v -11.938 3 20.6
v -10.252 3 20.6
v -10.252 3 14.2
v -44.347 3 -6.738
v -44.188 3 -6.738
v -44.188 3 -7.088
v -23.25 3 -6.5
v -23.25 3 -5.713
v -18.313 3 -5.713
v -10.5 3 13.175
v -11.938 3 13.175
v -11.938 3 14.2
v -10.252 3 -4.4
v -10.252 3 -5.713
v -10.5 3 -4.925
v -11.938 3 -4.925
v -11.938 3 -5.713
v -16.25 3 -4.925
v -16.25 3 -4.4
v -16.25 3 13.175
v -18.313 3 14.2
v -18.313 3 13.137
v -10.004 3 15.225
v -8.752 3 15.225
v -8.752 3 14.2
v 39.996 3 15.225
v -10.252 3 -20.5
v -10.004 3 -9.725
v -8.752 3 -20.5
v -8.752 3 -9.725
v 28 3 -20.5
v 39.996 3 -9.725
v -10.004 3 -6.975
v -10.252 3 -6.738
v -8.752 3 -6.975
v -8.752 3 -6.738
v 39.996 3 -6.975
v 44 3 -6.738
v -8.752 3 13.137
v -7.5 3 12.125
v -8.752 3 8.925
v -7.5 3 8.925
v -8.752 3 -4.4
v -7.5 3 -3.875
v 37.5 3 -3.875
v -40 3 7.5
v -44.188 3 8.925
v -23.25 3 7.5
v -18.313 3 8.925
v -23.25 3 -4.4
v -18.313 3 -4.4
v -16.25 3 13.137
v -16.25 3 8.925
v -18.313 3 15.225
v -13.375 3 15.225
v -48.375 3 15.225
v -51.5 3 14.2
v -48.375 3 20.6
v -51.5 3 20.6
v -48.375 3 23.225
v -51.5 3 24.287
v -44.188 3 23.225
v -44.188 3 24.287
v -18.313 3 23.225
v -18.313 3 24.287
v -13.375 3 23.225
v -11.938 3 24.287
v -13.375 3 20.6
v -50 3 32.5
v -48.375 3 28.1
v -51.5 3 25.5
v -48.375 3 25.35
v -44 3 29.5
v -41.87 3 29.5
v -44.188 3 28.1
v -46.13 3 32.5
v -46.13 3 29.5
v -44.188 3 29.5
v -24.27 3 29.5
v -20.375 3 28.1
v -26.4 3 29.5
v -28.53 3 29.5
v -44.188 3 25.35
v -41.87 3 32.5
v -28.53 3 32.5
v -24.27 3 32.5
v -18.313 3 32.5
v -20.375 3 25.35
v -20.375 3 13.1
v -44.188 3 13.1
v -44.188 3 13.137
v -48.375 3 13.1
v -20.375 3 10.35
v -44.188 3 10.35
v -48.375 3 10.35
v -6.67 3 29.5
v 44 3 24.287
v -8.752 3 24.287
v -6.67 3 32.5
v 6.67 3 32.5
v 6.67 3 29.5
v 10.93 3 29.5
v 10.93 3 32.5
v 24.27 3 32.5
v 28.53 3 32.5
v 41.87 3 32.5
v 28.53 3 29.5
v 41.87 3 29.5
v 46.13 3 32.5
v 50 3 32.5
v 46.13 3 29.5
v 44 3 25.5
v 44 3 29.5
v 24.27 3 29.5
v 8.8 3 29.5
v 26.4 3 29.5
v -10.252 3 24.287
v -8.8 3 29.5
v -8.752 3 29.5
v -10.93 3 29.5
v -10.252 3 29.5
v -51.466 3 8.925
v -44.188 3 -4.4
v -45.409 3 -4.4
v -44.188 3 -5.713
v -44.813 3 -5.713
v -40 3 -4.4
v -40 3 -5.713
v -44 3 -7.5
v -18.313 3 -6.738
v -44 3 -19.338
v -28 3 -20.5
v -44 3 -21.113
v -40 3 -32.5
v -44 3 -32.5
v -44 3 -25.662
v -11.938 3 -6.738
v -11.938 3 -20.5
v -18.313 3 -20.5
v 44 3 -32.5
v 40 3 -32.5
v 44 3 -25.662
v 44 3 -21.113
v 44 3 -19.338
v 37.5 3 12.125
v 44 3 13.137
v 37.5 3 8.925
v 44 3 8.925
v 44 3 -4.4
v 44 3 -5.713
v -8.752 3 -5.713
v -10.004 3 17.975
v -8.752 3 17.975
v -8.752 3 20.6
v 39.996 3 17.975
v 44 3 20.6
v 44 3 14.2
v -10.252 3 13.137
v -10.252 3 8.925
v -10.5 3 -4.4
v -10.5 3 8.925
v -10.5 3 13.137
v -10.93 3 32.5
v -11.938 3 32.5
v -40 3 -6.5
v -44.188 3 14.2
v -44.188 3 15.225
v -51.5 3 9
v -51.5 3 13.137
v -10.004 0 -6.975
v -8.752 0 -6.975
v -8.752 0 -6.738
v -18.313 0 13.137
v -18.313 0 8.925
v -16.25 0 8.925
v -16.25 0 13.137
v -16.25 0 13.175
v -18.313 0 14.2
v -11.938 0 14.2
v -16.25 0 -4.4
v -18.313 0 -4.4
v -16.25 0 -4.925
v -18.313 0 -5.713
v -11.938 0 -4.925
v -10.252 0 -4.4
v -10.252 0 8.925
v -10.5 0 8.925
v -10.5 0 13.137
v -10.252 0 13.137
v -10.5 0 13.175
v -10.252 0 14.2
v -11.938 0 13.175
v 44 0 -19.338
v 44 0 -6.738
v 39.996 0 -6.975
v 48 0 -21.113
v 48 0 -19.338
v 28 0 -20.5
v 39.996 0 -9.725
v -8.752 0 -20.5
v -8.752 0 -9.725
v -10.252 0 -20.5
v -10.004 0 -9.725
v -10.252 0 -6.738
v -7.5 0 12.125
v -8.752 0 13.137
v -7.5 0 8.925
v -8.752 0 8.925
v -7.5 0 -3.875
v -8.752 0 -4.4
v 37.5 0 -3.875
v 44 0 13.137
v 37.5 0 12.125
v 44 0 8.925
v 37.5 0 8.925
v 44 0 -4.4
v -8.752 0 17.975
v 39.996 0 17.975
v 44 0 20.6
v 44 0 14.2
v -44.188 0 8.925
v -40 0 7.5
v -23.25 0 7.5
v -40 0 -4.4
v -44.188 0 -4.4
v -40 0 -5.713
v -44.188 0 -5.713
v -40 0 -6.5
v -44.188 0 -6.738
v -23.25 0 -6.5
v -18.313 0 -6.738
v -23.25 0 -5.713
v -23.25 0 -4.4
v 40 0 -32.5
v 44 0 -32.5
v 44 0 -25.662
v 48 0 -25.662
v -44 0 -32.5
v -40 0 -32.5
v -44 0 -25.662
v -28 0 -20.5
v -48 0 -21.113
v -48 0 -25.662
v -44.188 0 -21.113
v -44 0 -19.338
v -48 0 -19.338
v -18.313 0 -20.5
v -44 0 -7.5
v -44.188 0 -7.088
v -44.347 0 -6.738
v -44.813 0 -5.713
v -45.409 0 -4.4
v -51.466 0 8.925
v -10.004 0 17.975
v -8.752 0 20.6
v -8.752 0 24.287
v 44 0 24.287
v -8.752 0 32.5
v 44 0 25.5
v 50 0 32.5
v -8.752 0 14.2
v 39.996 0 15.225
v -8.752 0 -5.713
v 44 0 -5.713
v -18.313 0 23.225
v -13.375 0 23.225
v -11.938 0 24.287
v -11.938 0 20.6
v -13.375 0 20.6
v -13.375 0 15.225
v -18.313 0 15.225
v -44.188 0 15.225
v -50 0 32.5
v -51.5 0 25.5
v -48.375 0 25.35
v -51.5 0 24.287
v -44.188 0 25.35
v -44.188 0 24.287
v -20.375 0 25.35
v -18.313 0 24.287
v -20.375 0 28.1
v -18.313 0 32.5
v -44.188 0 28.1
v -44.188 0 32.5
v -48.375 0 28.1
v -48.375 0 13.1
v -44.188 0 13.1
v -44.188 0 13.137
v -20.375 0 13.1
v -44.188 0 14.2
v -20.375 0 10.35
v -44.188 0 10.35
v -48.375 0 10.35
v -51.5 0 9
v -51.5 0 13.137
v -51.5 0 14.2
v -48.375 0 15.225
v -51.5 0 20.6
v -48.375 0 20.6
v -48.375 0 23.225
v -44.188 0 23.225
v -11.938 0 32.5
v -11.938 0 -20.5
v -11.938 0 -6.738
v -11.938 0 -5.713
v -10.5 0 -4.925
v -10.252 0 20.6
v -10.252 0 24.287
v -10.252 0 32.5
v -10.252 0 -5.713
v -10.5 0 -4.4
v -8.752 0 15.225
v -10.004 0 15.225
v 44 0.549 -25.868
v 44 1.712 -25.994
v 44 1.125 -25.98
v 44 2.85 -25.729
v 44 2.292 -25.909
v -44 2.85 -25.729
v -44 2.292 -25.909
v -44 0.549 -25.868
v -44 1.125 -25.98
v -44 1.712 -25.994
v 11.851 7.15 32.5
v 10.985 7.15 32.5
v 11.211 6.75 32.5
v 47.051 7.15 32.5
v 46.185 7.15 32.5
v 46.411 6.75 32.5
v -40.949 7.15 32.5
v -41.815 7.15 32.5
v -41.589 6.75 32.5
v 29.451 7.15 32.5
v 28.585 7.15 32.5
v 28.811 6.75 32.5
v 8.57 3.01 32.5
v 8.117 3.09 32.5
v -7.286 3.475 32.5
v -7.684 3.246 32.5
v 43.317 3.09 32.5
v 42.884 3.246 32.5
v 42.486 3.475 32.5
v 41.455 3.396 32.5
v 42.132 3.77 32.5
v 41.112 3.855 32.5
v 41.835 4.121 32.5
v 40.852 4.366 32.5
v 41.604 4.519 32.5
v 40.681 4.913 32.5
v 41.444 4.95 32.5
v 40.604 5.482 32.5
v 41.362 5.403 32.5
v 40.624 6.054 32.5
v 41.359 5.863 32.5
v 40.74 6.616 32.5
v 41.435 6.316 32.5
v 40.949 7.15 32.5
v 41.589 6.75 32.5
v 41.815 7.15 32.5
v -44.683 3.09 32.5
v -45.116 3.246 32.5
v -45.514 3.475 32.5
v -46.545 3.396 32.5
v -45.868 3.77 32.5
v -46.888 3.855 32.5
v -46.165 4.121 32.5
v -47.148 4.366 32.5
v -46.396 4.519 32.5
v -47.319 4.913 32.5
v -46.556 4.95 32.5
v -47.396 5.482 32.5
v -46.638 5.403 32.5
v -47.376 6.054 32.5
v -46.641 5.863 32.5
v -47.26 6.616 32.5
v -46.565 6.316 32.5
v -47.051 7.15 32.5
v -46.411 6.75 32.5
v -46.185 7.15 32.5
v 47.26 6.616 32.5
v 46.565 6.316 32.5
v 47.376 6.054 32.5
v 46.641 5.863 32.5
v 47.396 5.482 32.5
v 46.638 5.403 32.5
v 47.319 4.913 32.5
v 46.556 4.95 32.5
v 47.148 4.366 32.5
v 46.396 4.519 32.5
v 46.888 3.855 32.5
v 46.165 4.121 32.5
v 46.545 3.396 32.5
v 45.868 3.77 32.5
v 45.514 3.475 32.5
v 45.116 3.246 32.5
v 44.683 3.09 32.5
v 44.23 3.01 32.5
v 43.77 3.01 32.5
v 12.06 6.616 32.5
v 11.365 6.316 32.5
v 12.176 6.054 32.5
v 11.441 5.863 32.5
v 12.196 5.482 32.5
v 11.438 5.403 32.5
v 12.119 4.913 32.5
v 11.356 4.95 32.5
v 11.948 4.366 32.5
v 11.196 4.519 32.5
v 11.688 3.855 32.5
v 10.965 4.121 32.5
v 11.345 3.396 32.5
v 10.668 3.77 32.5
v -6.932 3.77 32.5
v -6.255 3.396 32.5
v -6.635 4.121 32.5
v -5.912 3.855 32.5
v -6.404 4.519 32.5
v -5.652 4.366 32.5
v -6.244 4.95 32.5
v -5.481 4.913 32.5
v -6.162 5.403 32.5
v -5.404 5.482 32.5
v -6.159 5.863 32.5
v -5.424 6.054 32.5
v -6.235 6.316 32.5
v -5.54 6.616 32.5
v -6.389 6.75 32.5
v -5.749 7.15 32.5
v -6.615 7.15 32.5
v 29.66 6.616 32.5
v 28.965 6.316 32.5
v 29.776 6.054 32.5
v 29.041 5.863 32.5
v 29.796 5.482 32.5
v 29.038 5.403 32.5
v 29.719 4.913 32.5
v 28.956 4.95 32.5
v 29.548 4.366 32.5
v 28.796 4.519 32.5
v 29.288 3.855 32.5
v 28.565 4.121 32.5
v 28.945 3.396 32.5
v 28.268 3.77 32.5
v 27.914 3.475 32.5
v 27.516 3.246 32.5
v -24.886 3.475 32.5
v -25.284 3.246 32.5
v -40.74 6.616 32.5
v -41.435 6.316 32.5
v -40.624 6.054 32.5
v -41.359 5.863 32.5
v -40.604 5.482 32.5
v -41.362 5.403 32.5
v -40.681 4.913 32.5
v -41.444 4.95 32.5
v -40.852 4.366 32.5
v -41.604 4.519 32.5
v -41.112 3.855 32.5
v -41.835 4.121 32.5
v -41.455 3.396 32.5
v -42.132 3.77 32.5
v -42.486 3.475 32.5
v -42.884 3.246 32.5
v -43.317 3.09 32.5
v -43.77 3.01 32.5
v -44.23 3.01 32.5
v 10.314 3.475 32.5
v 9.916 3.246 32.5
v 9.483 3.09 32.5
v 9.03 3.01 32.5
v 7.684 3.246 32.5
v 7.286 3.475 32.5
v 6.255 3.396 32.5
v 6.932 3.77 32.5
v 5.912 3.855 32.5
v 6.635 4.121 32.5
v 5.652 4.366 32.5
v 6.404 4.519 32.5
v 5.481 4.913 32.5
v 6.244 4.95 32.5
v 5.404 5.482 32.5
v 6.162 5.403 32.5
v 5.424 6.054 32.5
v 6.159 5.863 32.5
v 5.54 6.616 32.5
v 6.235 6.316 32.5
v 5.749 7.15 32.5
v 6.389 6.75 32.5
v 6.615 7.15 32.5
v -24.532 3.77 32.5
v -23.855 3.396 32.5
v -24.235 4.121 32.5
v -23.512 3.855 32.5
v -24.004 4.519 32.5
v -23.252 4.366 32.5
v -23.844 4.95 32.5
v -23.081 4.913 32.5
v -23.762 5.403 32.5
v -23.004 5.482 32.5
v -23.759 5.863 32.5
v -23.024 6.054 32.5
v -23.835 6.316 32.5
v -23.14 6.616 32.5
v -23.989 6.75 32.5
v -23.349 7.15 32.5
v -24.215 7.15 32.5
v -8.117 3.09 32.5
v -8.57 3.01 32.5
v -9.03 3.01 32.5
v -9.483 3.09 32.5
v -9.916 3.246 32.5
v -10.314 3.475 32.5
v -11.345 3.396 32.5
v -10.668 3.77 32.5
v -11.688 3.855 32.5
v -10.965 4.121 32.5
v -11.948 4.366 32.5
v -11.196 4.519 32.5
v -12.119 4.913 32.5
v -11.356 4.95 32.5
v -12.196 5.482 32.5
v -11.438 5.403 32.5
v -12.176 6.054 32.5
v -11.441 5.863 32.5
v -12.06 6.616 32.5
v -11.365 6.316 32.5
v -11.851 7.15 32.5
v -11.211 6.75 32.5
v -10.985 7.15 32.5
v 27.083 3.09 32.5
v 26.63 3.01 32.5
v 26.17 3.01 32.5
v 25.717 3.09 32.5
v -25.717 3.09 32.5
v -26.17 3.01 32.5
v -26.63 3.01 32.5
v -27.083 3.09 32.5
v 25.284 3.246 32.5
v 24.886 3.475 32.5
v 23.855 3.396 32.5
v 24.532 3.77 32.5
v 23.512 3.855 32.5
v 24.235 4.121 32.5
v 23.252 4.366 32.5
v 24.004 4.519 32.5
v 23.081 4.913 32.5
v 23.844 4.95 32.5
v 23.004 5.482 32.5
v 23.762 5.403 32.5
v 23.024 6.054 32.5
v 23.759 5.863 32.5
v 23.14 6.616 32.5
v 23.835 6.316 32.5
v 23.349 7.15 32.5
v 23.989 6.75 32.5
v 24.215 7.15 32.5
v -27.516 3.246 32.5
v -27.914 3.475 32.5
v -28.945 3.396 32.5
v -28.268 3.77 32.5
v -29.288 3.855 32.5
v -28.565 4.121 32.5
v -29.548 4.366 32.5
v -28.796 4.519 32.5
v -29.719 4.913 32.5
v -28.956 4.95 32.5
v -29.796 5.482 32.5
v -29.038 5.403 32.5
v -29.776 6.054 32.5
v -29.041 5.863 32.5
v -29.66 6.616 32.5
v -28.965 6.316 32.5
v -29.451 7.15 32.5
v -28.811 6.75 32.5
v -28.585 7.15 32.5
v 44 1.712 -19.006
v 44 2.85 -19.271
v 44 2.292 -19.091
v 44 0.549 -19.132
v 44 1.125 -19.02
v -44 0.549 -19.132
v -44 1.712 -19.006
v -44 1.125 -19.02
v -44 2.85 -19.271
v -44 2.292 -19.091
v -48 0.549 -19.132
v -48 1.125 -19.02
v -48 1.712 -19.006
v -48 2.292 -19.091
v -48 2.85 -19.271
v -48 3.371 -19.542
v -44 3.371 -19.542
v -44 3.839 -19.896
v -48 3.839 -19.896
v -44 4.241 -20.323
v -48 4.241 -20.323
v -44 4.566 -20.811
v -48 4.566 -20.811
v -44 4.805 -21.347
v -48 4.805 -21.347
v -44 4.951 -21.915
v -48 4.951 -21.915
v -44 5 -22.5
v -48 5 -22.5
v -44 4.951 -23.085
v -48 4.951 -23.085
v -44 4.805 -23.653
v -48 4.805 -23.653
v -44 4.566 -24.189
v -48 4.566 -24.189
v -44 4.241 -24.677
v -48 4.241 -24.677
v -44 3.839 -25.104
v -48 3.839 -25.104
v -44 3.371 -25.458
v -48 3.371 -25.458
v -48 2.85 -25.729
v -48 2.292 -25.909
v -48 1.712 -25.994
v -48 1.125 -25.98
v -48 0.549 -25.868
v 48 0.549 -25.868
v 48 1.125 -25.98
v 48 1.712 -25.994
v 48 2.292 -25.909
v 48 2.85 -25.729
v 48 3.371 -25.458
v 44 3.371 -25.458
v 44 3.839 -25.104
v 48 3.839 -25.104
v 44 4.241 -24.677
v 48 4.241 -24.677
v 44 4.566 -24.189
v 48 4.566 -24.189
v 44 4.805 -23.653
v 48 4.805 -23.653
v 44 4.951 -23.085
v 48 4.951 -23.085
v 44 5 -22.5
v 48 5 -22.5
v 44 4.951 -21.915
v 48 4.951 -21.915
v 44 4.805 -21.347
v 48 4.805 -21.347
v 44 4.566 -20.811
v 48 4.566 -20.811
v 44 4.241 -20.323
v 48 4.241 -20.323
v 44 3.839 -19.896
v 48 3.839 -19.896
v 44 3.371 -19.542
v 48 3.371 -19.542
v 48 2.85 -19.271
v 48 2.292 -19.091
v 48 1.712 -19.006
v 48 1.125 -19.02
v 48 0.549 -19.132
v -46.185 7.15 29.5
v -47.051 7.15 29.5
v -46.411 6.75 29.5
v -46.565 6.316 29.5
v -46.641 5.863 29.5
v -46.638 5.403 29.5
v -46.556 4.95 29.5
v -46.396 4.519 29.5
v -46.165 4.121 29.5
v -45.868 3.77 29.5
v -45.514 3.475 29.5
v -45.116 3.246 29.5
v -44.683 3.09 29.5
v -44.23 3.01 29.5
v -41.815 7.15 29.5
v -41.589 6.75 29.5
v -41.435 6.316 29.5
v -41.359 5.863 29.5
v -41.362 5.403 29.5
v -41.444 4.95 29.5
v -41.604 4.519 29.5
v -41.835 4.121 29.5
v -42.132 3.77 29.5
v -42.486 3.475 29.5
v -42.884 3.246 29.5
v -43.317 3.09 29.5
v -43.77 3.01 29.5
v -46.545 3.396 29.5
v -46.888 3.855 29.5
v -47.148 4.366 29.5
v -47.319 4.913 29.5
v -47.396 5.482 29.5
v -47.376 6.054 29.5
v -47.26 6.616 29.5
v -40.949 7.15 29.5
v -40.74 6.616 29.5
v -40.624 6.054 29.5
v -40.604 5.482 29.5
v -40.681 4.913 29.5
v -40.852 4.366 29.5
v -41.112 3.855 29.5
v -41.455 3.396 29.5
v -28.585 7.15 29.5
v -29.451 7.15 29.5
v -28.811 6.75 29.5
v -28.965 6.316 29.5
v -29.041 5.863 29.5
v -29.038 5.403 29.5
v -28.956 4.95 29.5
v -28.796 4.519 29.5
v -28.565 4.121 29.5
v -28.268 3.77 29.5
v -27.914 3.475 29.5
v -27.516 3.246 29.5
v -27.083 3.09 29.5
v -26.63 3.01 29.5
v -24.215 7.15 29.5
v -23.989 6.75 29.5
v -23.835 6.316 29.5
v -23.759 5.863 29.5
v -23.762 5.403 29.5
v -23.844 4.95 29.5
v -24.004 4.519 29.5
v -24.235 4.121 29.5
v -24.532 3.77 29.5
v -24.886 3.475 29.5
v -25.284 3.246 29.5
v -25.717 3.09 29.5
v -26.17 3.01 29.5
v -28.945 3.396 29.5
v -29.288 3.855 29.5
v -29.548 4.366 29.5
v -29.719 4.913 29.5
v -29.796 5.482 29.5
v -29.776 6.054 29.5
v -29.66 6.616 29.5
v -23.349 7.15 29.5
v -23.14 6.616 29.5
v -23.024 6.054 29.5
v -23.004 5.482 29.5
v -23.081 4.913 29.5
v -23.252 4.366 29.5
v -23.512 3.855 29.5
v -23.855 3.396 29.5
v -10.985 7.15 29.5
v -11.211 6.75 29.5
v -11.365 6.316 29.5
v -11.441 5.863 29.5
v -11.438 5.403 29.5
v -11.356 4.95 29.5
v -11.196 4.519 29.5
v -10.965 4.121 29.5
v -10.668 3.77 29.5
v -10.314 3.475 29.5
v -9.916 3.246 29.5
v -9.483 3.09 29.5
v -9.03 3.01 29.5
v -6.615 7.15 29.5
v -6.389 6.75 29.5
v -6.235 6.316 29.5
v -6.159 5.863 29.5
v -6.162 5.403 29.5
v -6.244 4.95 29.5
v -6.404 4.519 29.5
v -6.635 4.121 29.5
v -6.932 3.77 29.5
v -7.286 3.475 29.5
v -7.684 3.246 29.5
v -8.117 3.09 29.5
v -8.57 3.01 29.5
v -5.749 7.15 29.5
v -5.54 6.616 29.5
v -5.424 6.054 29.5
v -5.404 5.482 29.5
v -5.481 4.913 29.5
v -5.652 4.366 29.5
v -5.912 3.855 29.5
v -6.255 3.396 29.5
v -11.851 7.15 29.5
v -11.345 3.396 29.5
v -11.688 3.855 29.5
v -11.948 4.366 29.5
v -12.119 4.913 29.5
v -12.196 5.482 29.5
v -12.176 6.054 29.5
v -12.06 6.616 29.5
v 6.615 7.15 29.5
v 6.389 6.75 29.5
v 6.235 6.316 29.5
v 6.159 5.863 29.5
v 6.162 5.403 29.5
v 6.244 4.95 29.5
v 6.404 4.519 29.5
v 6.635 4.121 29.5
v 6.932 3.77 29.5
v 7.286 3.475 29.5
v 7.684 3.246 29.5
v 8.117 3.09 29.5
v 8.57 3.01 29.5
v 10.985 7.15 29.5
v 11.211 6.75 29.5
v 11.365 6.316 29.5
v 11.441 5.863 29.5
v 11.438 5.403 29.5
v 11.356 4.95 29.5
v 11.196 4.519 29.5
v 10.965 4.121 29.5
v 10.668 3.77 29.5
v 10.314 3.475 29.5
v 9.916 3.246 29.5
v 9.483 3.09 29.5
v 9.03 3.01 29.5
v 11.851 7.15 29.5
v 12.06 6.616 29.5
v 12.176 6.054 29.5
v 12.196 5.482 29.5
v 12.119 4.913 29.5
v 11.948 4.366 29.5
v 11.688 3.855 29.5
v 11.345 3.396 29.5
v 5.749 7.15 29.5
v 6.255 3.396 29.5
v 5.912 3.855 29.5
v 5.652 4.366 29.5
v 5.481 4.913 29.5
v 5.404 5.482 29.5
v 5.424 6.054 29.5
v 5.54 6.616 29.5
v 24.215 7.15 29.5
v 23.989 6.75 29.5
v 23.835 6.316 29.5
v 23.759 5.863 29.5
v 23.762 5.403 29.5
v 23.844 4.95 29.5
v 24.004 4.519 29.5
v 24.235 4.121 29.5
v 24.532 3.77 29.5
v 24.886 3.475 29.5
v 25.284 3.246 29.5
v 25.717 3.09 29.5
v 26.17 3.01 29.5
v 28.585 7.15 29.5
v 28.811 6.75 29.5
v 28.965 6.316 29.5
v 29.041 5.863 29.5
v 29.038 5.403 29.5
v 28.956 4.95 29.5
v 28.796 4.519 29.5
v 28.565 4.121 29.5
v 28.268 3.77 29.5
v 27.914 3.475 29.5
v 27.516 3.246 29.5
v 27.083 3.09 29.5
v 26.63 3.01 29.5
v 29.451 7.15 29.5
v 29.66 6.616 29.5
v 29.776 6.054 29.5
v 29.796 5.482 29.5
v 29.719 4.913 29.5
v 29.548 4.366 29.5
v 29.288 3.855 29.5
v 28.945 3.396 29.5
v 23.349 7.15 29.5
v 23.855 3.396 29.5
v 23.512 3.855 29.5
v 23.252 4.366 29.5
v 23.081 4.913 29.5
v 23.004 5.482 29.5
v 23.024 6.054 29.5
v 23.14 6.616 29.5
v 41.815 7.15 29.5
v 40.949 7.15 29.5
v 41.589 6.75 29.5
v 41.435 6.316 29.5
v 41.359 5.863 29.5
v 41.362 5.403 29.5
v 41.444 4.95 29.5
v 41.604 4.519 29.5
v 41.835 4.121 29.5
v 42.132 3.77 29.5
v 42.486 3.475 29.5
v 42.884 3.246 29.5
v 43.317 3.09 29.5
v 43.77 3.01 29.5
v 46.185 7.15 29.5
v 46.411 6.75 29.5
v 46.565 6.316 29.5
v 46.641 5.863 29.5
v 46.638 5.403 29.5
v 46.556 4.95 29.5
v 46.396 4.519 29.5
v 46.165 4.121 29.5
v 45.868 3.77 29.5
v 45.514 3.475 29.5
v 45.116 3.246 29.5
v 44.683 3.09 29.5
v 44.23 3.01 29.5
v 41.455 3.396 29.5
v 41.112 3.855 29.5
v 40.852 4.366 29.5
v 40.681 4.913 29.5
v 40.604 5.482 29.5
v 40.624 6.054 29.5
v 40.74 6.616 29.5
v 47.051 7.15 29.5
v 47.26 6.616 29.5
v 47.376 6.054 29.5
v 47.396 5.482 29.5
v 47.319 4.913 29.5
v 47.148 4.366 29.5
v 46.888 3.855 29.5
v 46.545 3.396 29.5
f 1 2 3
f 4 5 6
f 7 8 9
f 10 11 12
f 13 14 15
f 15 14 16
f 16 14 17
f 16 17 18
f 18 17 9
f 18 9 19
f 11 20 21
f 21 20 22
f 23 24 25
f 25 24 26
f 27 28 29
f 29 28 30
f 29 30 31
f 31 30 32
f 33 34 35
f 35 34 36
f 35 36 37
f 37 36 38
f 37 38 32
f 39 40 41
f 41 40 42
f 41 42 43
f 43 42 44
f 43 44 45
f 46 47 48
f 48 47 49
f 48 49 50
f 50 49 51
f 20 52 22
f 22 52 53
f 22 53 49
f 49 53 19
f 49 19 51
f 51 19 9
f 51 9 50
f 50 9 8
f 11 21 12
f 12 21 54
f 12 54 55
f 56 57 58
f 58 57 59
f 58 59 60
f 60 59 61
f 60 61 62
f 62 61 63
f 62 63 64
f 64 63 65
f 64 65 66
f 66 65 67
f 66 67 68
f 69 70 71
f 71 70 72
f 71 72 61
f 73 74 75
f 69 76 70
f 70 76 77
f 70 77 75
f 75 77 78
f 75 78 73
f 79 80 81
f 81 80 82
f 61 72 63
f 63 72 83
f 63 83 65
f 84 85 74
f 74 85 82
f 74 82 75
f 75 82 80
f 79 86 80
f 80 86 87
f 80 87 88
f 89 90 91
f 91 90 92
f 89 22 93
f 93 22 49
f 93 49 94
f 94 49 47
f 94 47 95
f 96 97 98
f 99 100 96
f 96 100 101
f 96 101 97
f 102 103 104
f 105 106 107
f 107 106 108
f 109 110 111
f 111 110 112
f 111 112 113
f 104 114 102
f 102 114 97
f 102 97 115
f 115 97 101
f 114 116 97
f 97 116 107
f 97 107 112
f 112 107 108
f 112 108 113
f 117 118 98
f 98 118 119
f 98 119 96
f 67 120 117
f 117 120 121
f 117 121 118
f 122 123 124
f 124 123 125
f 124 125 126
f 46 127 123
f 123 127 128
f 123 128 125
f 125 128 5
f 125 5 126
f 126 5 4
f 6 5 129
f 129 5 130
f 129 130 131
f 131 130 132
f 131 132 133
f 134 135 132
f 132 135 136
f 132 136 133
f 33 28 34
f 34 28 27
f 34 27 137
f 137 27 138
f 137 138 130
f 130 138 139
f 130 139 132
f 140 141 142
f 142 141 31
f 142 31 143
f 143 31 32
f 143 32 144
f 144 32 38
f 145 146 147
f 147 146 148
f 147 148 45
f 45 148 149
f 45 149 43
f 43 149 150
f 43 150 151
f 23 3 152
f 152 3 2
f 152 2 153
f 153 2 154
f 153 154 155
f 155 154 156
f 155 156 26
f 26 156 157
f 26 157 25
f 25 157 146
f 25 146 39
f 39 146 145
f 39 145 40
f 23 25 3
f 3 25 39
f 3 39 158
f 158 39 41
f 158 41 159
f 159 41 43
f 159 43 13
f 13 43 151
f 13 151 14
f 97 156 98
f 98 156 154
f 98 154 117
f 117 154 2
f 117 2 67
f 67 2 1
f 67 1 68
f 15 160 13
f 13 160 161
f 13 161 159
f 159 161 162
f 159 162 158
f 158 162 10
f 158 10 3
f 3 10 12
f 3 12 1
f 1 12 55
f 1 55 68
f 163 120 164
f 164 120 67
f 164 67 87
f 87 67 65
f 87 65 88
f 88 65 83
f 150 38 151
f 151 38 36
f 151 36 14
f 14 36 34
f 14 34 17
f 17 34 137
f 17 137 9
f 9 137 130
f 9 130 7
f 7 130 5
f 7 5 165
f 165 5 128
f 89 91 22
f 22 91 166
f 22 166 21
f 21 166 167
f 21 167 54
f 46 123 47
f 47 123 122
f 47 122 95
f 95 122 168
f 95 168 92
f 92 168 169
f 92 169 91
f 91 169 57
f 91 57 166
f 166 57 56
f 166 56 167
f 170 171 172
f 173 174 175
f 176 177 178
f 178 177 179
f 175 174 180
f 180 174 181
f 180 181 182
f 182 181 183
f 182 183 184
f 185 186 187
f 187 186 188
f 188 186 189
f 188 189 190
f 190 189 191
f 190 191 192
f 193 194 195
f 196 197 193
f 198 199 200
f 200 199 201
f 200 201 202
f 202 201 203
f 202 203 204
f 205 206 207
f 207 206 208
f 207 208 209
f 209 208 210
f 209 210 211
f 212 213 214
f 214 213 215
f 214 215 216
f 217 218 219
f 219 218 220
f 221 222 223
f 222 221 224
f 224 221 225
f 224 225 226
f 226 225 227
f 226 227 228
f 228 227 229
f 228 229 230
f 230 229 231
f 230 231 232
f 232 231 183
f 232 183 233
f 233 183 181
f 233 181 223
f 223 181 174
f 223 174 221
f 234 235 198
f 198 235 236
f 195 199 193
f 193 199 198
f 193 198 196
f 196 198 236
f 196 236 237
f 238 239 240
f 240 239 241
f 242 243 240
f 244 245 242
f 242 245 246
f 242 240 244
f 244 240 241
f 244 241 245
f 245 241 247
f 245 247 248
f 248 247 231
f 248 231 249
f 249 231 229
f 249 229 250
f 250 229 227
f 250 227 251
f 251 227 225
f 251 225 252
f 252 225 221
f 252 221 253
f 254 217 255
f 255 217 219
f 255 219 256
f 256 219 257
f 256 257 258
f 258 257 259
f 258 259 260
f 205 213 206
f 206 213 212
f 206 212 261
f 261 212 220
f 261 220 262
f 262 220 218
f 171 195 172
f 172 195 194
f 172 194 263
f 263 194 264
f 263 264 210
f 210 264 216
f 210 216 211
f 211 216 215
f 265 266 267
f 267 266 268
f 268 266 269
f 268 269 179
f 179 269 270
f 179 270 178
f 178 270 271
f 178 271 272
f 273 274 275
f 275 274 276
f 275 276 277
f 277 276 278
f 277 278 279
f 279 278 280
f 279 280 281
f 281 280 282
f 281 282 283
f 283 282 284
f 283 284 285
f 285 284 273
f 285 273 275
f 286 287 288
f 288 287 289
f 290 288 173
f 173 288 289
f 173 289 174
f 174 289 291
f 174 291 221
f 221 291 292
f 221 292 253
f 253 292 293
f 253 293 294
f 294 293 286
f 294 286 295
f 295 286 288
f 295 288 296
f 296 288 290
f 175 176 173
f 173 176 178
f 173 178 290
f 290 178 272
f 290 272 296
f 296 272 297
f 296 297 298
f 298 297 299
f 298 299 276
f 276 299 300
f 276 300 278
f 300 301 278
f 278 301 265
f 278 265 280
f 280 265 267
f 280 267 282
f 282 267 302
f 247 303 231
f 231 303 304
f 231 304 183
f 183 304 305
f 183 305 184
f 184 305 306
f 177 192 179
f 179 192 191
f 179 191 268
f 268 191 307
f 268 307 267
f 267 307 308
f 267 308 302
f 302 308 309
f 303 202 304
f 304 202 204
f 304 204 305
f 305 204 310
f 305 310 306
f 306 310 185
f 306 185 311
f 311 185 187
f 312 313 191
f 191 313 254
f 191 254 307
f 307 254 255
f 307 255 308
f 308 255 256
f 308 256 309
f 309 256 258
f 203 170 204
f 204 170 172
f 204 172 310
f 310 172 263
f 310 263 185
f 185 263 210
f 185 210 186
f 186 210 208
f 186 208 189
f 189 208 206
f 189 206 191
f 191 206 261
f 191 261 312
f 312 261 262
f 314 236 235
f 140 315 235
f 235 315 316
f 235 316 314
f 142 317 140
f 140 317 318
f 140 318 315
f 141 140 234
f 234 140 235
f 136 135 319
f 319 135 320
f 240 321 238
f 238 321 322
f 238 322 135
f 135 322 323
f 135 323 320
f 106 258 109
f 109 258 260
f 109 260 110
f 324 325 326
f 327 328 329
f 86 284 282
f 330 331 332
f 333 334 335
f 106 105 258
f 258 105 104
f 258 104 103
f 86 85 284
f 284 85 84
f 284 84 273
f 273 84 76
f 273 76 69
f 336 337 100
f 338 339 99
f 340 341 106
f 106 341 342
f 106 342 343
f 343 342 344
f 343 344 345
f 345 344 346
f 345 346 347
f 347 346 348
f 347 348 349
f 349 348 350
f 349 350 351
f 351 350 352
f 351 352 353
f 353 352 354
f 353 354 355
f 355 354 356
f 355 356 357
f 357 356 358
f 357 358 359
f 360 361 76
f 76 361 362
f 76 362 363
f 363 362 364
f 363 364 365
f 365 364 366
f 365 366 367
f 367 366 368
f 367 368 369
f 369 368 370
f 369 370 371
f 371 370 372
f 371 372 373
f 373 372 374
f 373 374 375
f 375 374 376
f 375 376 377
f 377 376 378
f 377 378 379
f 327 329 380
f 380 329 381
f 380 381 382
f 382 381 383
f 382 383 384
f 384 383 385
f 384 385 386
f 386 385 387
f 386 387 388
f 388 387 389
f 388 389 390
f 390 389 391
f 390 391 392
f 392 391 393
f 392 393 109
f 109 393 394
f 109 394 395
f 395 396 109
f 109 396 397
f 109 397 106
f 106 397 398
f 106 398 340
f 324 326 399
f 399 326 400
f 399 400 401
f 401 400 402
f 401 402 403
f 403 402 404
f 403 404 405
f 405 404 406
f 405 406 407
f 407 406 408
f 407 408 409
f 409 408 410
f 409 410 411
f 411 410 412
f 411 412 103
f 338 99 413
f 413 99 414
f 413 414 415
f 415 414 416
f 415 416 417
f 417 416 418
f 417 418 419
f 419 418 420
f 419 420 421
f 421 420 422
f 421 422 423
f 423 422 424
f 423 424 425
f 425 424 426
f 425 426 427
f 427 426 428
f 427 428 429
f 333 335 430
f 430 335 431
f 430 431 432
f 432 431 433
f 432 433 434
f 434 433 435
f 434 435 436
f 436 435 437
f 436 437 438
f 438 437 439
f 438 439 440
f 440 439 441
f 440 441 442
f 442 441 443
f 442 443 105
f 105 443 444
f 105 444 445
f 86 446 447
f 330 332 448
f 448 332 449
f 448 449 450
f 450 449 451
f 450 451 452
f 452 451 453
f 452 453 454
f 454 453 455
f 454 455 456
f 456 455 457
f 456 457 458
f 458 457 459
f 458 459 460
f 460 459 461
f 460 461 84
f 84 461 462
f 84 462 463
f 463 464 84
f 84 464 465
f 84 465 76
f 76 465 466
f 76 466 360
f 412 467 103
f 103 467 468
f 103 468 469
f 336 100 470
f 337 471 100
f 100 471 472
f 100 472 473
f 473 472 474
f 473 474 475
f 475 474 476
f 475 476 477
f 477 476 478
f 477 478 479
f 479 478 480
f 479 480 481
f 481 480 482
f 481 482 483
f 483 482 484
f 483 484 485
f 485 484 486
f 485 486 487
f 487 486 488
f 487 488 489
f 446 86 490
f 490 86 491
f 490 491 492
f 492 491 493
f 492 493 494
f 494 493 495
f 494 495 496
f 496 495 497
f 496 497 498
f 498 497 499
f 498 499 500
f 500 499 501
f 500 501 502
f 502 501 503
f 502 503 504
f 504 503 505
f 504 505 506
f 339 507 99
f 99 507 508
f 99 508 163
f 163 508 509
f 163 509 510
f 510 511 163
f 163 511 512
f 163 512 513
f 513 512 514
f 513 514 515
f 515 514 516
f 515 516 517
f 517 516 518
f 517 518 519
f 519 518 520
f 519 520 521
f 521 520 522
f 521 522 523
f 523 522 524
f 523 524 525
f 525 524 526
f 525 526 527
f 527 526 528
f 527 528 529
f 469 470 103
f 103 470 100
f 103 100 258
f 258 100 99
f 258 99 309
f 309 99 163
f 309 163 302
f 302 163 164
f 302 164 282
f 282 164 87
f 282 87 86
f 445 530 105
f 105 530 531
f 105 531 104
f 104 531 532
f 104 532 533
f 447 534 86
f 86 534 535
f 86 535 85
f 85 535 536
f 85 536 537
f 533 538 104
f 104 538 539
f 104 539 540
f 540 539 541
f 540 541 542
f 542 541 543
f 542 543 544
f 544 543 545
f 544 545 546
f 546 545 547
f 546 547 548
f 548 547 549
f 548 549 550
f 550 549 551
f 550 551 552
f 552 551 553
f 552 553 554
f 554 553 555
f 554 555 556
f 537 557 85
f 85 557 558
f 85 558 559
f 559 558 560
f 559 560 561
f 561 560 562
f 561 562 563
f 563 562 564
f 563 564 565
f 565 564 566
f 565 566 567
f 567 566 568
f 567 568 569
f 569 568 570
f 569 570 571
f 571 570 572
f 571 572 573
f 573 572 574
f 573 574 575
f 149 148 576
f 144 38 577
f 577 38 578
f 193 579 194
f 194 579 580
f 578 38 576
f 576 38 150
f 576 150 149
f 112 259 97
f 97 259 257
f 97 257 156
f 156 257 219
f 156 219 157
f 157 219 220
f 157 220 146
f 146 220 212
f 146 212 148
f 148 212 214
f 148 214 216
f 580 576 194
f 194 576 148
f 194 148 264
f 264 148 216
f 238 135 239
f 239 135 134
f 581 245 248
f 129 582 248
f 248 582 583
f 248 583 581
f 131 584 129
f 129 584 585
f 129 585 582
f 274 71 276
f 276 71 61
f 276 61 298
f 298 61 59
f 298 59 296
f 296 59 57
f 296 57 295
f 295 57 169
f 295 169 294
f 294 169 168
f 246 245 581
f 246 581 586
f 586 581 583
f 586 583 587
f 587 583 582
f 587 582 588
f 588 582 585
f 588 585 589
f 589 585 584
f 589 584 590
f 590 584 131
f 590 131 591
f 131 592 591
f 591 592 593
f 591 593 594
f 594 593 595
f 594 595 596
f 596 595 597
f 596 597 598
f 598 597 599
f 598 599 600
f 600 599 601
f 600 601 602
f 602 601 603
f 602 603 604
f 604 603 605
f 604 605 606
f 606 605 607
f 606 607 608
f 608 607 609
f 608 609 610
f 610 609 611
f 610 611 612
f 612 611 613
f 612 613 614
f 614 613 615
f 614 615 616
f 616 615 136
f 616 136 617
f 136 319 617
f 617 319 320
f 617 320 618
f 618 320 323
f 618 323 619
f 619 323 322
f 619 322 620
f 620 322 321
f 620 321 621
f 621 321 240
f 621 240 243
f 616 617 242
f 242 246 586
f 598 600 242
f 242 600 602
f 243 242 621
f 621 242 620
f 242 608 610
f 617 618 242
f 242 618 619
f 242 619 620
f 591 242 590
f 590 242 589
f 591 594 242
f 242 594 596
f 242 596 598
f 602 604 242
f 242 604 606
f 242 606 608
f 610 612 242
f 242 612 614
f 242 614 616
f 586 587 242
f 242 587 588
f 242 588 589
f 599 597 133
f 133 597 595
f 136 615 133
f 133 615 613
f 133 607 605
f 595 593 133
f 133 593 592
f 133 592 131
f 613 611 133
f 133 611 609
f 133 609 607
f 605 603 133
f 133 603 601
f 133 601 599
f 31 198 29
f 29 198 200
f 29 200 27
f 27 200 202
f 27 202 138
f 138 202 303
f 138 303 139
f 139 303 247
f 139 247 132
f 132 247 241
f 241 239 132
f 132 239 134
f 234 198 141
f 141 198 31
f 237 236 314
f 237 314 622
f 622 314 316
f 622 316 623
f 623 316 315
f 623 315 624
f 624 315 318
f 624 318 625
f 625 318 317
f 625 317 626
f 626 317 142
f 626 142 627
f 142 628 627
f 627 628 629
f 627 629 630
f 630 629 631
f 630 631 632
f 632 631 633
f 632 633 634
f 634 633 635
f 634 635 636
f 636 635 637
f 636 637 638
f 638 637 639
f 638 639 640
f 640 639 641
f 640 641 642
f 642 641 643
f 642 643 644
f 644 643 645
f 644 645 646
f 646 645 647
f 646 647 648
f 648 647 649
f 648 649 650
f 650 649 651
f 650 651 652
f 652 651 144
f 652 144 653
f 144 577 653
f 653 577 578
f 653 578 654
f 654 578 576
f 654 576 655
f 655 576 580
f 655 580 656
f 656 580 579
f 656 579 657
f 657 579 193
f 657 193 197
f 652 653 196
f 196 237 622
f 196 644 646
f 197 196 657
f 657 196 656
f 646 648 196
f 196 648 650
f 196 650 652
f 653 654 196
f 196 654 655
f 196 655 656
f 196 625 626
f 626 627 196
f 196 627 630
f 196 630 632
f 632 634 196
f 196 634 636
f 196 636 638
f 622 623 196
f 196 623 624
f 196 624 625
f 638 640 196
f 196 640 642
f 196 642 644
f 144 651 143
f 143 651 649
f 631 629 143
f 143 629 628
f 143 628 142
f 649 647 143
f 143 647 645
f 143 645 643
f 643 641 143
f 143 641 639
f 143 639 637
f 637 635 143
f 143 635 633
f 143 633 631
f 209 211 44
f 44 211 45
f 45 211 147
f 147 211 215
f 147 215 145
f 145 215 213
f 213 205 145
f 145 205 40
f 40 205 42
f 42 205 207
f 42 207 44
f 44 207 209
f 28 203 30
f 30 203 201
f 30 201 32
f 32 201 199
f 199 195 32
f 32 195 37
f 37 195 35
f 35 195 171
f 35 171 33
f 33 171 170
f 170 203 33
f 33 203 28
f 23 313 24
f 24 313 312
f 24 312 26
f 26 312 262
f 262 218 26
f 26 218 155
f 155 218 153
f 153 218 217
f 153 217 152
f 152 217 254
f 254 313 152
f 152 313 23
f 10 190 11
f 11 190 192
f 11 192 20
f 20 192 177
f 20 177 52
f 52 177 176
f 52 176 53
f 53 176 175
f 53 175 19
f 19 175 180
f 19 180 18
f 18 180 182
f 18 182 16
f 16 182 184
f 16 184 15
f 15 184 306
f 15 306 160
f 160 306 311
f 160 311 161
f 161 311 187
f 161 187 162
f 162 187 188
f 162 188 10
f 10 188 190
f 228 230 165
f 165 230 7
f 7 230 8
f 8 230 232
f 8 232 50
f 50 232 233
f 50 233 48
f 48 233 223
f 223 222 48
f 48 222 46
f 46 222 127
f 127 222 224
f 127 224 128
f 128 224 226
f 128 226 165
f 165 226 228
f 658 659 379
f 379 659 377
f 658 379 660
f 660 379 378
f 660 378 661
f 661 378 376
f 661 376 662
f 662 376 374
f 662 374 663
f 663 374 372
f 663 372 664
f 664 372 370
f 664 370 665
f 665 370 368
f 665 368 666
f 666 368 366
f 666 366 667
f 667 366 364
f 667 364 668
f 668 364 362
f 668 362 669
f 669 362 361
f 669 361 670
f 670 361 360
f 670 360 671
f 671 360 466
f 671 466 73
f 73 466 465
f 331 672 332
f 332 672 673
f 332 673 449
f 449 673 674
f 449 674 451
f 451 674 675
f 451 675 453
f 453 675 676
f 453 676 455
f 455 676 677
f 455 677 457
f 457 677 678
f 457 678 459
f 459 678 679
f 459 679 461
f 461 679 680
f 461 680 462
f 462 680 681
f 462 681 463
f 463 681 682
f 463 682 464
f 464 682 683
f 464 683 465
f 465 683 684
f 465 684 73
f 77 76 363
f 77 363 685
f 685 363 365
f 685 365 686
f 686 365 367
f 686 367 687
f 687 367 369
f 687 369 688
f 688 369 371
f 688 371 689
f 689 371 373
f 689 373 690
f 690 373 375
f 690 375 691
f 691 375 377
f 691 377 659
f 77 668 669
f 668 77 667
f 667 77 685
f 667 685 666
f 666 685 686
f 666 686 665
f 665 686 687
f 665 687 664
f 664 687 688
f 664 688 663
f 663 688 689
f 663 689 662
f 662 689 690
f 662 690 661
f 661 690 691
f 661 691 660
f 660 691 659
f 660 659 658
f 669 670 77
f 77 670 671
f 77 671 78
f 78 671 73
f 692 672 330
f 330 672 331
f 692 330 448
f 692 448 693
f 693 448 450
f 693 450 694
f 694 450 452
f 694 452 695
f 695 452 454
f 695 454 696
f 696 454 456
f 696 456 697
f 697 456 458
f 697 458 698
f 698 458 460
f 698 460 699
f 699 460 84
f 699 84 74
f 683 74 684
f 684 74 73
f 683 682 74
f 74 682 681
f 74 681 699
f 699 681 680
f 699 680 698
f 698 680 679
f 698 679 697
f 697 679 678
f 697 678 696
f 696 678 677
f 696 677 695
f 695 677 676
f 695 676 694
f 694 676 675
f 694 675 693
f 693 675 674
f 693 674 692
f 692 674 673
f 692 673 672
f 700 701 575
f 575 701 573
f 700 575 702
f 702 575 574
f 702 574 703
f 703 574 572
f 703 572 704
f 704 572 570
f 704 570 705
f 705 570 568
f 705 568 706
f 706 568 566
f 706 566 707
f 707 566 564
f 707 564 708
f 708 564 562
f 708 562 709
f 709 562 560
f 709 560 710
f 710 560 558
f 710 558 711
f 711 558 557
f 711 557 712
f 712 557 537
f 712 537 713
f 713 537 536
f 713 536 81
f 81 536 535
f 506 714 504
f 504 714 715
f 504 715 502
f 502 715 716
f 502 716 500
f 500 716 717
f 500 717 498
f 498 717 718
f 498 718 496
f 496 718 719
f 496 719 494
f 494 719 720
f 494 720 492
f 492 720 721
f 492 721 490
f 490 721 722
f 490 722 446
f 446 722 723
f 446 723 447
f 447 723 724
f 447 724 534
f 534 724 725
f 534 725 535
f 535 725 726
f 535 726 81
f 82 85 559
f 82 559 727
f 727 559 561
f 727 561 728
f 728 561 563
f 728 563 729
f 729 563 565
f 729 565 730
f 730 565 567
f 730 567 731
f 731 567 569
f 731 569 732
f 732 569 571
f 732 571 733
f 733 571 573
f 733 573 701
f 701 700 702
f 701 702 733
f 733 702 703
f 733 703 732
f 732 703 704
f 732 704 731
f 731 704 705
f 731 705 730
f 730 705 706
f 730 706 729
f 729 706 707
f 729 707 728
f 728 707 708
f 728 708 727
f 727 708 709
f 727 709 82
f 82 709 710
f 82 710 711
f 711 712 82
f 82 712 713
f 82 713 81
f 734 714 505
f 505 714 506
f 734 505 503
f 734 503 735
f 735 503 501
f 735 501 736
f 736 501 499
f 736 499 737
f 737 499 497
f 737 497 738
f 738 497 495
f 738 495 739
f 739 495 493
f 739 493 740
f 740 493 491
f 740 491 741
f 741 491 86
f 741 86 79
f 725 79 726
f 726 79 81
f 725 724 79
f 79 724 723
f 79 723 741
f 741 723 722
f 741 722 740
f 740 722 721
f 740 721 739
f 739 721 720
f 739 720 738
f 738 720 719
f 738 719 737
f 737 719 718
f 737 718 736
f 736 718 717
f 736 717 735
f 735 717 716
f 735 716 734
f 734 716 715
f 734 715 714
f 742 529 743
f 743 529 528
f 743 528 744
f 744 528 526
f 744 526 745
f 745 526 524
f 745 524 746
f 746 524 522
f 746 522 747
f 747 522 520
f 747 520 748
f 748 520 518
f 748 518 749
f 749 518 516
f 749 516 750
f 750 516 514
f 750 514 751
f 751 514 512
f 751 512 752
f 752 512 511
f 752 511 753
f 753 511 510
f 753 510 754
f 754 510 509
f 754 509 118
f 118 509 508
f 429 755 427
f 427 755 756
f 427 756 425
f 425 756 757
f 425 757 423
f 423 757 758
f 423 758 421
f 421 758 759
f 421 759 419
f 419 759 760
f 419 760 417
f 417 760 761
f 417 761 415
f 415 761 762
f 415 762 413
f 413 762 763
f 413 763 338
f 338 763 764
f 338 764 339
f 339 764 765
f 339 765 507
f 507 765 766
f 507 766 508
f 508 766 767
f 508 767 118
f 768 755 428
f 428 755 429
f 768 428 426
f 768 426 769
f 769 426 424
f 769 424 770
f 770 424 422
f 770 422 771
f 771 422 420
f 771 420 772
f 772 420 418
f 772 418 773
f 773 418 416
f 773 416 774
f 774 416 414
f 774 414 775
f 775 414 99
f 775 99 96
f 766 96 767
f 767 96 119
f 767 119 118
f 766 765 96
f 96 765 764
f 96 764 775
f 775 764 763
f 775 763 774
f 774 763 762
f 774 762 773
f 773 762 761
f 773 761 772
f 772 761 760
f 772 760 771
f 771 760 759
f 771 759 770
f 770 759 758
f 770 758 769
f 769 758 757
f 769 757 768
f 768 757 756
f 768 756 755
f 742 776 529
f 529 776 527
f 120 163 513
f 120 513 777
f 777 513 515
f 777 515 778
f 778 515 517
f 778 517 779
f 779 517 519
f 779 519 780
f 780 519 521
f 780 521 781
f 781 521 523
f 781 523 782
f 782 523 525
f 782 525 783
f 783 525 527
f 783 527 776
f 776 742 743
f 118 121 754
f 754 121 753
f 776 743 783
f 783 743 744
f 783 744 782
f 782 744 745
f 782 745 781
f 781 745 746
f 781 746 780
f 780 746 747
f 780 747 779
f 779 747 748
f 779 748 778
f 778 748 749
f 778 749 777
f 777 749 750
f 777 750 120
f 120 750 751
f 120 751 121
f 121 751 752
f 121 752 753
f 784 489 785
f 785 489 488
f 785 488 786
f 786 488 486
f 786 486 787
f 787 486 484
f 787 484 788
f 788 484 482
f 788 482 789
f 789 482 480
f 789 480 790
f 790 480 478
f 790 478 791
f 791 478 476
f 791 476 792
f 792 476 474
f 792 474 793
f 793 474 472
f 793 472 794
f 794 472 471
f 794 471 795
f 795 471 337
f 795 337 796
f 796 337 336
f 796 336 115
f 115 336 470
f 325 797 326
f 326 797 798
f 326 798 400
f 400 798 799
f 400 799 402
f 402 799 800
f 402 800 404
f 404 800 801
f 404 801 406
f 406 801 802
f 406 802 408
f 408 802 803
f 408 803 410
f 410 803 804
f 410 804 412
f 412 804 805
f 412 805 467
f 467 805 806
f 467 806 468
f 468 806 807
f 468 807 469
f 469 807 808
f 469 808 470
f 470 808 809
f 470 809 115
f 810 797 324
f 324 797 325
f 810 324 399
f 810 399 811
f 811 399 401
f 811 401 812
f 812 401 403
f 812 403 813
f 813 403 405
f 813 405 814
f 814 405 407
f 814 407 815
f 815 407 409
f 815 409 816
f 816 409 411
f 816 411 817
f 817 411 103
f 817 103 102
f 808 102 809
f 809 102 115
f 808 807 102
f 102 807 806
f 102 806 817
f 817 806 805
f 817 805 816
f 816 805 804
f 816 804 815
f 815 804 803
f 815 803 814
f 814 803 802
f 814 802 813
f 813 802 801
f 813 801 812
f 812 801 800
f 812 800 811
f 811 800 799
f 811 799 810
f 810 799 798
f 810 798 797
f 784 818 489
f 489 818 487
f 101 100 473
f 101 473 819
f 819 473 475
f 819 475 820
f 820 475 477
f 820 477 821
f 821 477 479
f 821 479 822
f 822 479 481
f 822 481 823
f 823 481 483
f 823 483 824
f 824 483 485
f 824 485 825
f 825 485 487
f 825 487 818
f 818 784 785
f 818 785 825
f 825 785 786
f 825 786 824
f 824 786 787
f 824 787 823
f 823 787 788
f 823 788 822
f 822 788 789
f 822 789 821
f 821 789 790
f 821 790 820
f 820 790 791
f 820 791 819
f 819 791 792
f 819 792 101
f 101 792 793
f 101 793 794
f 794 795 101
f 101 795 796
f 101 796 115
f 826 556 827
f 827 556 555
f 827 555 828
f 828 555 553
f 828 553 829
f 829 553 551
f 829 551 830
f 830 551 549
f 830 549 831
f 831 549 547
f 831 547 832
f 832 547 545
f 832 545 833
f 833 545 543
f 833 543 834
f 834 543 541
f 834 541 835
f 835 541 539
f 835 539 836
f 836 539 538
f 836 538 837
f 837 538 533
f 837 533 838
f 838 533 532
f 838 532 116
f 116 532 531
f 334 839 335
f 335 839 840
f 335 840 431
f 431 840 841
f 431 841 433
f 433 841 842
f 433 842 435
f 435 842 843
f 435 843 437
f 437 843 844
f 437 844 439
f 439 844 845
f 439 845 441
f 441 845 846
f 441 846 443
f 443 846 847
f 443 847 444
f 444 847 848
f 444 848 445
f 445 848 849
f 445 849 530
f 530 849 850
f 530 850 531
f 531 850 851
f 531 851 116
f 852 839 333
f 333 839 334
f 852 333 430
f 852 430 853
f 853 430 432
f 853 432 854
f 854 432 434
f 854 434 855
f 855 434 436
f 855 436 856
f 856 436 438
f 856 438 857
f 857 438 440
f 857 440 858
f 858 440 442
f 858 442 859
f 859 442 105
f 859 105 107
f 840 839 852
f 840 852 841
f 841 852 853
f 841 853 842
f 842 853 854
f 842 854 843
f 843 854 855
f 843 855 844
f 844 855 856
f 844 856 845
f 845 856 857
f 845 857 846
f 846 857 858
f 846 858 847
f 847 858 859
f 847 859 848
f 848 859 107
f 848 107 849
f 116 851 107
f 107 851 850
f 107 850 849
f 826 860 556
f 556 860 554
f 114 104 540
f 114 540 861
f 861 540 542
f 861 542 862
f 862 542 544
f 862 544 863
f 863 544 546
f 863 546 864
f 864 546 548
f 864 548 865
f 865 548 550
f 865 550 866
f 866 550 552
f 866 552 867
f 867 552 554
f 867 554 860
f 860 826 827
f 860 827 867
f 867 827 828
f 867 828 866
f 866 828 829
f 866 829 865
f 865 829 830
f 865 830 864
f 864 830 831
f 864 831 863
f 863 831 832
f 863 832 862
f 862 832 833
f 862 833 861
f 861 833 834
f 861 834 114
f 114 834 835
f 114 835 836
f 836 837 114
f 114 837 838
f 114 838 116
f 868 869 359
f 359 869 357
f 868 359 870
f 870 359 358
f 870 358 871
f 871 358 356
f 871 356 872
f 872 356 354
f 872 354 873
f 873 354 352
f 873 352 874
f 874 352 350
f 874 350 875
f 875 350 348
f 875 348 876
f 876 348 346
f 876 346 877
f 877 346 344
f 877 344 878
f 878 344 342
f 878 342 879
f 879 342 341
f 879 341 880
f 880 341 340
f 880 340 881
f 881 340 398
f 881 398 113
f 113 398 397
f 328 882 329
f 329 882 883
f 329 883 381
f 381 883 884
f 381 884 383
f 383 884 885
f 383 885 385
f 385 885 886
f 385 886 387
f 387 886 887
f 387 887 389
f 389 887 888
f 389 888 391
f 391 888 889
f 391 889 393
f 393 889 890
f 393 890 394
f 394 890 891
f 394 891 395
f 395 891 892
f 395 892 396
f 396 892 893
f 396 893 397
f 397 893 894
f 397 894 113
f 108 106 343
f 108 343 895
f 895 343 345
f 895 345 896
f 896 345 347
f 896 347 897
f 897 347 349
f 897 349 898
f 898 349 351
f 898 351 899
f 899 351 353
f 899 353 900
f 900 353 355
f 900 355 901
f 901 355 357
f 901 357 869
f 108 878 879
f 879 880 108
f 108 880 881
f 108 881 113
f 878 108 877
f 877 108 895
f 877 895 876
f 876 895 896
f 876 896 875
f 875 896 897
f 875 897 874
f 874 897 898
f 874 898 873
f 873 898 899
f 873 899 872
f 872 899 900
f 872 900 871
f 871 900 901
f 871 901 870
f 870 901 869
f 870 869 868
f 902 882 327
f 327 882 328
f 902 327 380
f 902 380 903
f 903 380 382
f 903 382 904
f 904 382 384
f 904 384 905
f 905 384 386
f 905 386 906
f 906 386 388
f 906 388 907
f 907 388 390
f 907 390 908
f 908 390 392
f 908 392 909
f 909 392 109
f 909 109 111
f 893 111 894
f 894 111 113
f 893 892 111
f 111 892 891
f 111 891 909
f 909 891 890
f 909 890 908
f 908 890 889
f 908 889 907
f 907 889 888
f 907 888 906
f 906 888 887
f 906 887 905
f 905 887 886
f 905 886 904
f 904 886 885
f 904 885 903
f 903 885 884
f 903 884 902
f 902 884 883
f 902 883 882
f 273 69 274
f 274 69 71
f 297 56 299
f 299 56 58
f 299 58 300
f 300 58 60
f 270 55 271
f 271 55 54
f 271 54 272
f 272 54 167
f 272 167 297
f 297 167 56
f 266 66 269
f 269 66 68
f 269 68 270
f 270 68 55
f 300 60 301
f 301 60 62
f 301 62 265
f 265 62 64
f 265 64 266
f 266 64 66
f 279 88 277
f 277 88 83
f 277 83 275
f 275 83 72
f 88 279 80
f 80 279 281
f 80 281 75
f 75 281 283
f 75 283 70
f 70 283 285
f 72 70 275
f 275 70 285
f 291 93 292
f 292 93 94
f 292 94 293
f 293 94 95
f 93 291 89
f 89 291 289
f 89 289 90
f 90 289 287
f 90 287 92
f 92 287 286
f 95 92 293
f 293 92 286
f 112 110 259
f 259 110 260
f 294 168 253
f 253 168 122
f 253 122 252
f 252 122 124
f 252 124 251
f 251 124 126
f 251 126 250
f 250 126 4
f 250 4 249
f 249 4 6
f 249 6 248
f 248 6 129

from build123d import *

# Parameters (mm, degrees)
SKETCH1_W            = 88
SKETCH1_H            = 65
SKETCH1_W_2          = 7.5
SKETCH1_H_2          = 33
BOSS_EXTRUDE1_DEPTH  = 3
BOSS_EXTRUDE8_DEPTH  = 4
CUT_EXTRUDE18_DEPTH  = 61.971304726
SKETCH8_W            = 16
SKETCH8_H            = 45
SKETCH8_W_2          = 2.75
SKETCH8_H_2          = 50
SKETCH8_W_3          = 18.1
SKETCH8_H_3          = 4.25
SKETCH8_H_4          = 1.5
CUT_EXTRUDE19_DEPTH  = 64.044492712
SKETCH10_W           = 16.75
SKETCH10_H           = 14
CUT_EXTRUDE21_DEPTH  = 61.971304726
BOSS_EXTRUDE10_DEPTH = 3
BOSS_EXTRUDE9_START  = -3
BOSS_EXTRUDE9_DEPTH  = 3
SKETCH16_W           = 35
SKETCH16_H           = 8
CUT_EXTRUDE22_DEPTH  = 3
SKETCH17_W           = 28
SKETCH17_H           = 2.75
CUT_EXTRUDE23_DEPTH  = 3
CUT_EXTRUDE24_DEPTH  = 3


# Read off the part's stored shape, not the designer's step: Boss-Extrude9
with BuildPart() as part:
    # Sketch1 → Boss-Extrude1 (new body)
    with BuildSketch(Plane(origin=(0, 0, 0), x_dir=(1, 0, 0), z_dir=(0, 1, 0))):
        Rectangle(SKETCH1_W, SKETCH1_H)
        with Locations((-47.75, -9)):
            Rectangle(SKETCH1_W_2, SKETCH1_H_2)
        with Locations((47.75, -9)):
            Rectangle(SKETCH1_W_2, SKETCH1_H_2)
    extrude(amount=BOSS_EXTRUDE1_DEPTH)

    # Sketch2 → Boss-Extrude8 (add)
    with BuildSketch(Plane.ZY.offset(44)):
        with BuildLine():
            ThreePointArc((-19, 1.5), (-23.268774411, 4.914525722), (-25.66227766, 0))
            Line((-25.66227766, 0), (-19.33772234, 0))
            ThreePointArc((-19.33772234, 0), (-19.085474278, 0.731225589), (-19, 1.5))
        make_face()
    boss_extrude8 = extrude(amount=BOSS_EXTRUDE8_DEPTH)

    # Sketch7 → Cut-Extrude18 (cut, through all)
    with BuildSketch(Plane(origin=(0, 3, 0), x_dir=(1, 0, 0), z_dir=(0, 1, 0))):
        Polygon((-40, 32.5), (-28, 20.5), (0, 20.5), (0, 32.5), align=None)
    cut_extrude18 = extrude(amount=-CUT_EXTRUDE18_DEPTH, mode=Mode.SUBTRACT)

    # Mirror4: Cut-Extrude18 across plane
    add(cut_extrude18.mirror(Plane(origin=(0, 0, 0), x_dir=(0, 0, 1), z_dir=(1, 0, 0))), mode=Mode.SUBTRACT)

    # Mirror5: Boss-Extrude8 across plane
    add(boss_extrude8.mirror(Plane(origin=(0, 0, 0), x_dir=(0, 0, 1), z_dir=(1, 0, 0))))

    # Sketch8 → Cut-Extrude19 (cut, through all)
    with BuildSketch(Plane(origin=(1.47526487, 3, -1.547457662), x_dir=(0, 0, -1), z_dir=(0, 1, 0))):
        with Locations((-5.672457662, -13.52473513)):
            Rectangle(SKETCH8_W, SKETCH8_H)
        with Locations((6.802542338, -13.521195307)):
            Rectangle(SKETCH8_W_2, SKETCH8_H_2)
        with Locations((-18.147457662, -13.521195307)):
            Rectangle(SKETCH8_W_2, SKETCH8_H_2)
        with Locations((-5.672457662, 15.60026487)):
            Rectangle(SKETCH8_W_3, SKETCH8_H_3)
        with Locations((-5.672457662, 12.72526487)):
            Rectangle(SKETCH8_W_3, SKETCH8_H_4)
    extrude(amount=-CUT_EXTRUDE19_DEPTH, mode=Mode.SUBTRACT)

    # Sketch10 → Cut-Extrude21 (cut, through all)
    with BuildSketch(Plane(origin=(0, 3, 0), x_dir=(1, 0, 0), z_dir=(0, 1, 0))):
        with Locations((-31.625, -0.5)):
            Rectangle(SKETCH10_W, SKETCH10_H)
    extrude(amount=-CUT_EXTRUDE21_DEPTH, mode=Mode.SUBTRACT)

    # Sketch15 → Boss-Extrude10 (add)
    with BuildSketch(Plane.XY.offset(32.5)):
        with BuildLine():
            Line((-46.184605227, 7.15), (-47.05122926, 7.15))
            ThreePointArc((-47.05122926, 7.15), (-46.886173938, 3.852779924), (-44, 2.25))
            Line((-44, 2.25), (-44, 3))
            ThreePointArc((-44, 3), (-46.344941364, 4.41559731), (-46.184605227, 7.15))
        make_face()
        with BuildLine():
            ThreePointArc((-40.6, 5.65), (-40.688340334, 6.42000666), (-40.94877074, 7.15))
            Line((-40.94877074, 7.15), (-41.815394773, 7.15))
            ThreePointArc((-41.815394773, 7.15), (-41.469021548, 6.435269427), (-41.35, 5.65))
            ThreePointArc((-41.35, 5.65), (-42.12616703, 3.77616703), (-44, 3))
            Line((-44, 3), (-41.86985916, 3))
            ThreePointArc((-41.86985916, 3), (-40.933855935, 4.180727877), (-40.6, 5.65))
        make_face()
        with BuildLine():
            ThreePointArc((-29.45122926, 7.15), (-29.719227927, 4.913300625), (-28.53014084, 3))
            Line((-28.53014084, 3), (-26.4, 3))
            ThreePointArc((-26.4, 3), (-28.744941364, 4.41559731), (-28.584605227, 7.15))
            Line((-28.584605227, 7.15), (-29.45122926, 7.15))
        make_face()
        with BuildLine():
            Line((-26.4, 3), (-24.26985916, 3))
            ThreePointArc((-24.26985916, 3), (-23.333855935, 4.180727877), (-23, 5.65))
            ThreePointArc((-23, 5.65), (-23.088340334, 6.42000666), (-23.34877074, 7.15))
            Line((-23.34877074, 7.15), (-24.215394773, 7.15))
            ThreePointArc((-24.215394773, 7.15), (-23.869021548, 6.435269427), (-23.75, 5.65))
            ThreePointArc((-23.75, 5.65), (-24.52616703, 3.77616703), (-26.4, 3))
        make_face()
        with BuildLine():
            Line((-8.8, 3), (-6.66985916, 3))
            ThreePointArc((-6.66985916, 3), (-5.733855935, 4.180727877), (-5.4, 5.65))
            ThreePointArc((-5.4, 5.65), (-5.488340334, 6.42000666), (-5.74877074, 7.15))
            Line((-5.74877074, 7.15), (-6.615394773, 7.15))
            ThreePointArc((-6.615394773, 7.15), (-6.269021548, 6.435269427), (-6.15, 5.65))
            ThreePointArc((-6.15, 5.65), (-6.92616703, 3.77616703), (-8.8, 3))
        make_face()
        with BuildLine():
            ThreePointArc((-11.85122926, 7.15), (-12.119227927, 4.913300625), (-10.93014084, 3))
            Line((-10.93014084, 3), (-8.8, 3))
            ThreePointArc((-8.8, 3), (-11.144941364, 4.41559731), (-10.984605227, 7.15))
            Line((-10.984605227, 7.15), (-11.85122926, 7.15))
        make_face()
        with BuildLine():
            Line((8.800000027, 3), (10.93014084, 3))
            ThreePointArc((10.93014084, 3), (11.866144065, 4.180727877), (12.2, 5.65))
            ThreePointArc((12.2, 5.65), (12.111659666, 6.42000666), (11.85122926, 7.15))
            Line((11.85122926, 7.15), (10.984605227, 7.15))
            ThreePointArc((10.984605227, 7.15), (11.330978452, 6.435269427), (11.45, 5.65))
            ThreePointArc((11.45, 5.65), (10.67383298, 3.77616704), (8.800000027, 3))
        make_face()
        with BuildLine():
            ThreePointArc((5.74877074, 7.15), (5.480772073, 4.913300625), (6.66985916, 3))
            Line((6.66985916, 3), (8.800000027, 3))
            ThreePointArc((8.800000027, 3), (6.455058643, 4.415597298), (6.615394773, 7.15))
            Line((6.615394773, 7.15), (5.74877074, 7.15))
        make_face()
        with BuildLine():
            Line((26.4, 3), (28.53014084, 3))
            ThreePointArc((28.53014084, 3), (29.466144065, 4.180727877), (29.8, 5.65))
            ThreePointArc((29.8, 5.65), (29.711659666, 6.42000666), (29.45122926, 7.15))
            Line((29.45122926, 7.15), (28.584605227, 7.15))
            ThreePointArc((28.584605227, 7.15), (28.930978452, 6.435269427), (29.05, 5.65))
            ThreePointArc((29.05, 5.65), (28.27383297, 3.77616703), (26.4, 3))
        make_face()
        with BuildLine():
            ThreePointArc((23.34877074, 7.15), (23.080772073, 4.913300625), (24.26985916, 3))
            Line((24.26985916, 3), (26.4, 3))
            ThreePointArc((26.4, 3), (24.055058636, 4.41559731), (24.215394773, 7.15))
            Line((24.215394773, 7.15), (23.34877074, 7.15))
        make_face()
        with BuildLine():
            ThreePointArc((40.94877074, 7.15), (40.680772073, 4.913300625), (41.86985916, 3))
            Line((41.86985916, 3), (44, 3))
            ThreePointArc((44, 3), (41.655058636, 4.41559731), (41.815394773, 7.15))
            Line((41.815394773, 7.15), (40.94877074, 7.15))
        make_face()
        with BuildLine():
            ThreePointArc((47.4, 5.65), (47.311659666, 6.42000666), (47.05122926, 7.15))
            Line((47.05122926, 7.15), (46.184605227, 7.15))
            ThreePointArc((46.184605227, 7.15), (46.530978452, 6.435269427), (46.65, 5.65))
            ThreePointArc((46.65, 5.65), (45.87383297, 3.77616703), (44, 3))
            Line((44, 3), (44, 2.25))
            ThreePointArc((44, 2.25), (46.404163056, 3.245836944), (47.4, 5.65))
        make_face()
    extrude(amount=-BOSS_EXTRUDE10_DEPTH)

    # Boss-Extrude9 outline → Boss-Extrude9 (add)
    with BuildSketch(Plane(origin=(0, 3, 0), x_dir=(1, 0, 0), z_dir=(0, 1, 0)).offset(BOSS_EXTRUDE9_START)):
        Polygon((-50, -32.5), (-44, -32.5), (-44, -29.5), (-44, -25.5), (-51.5, -25.5), align=None)
        Polygon((44, -32.5), (50, -32.5), (51.5, -25.5), (44, -25.5), (44, -29.5), align=None)
    extrude(amount=BOSS_EXTRUDE9_DEPTH)

    # Sketch16 → Cut-Extrude22 (cut)
    with BuildSketch(Plane(origin=(0, 3, 0), x_dir=(1, 0, 0), z_dir=(0, 1, 0))):
        with Locations((-30.875, -19.225)):
            Rectangle(SKETCH16_W, SKETCH16_H)
    extrude(amount=-CUT_EXTRUDE22_DEPTH, mode=Mode.SUBTRACT)

    # Sketch17 → Cut-Extrude23 (cut)
    with BuildSketch(Plane(origin=(0, 3, 0), x_dir=(1, 0, 0), z_dir=(0, 1, 0))):
        with Locations((-34.375, -11.725)):
            Rectangle(SKETCH17_W, SKETCH17_H)
        with Locations((-34.375, -26.725)):
            Rectangle(SKETCH17_W, SKETCH17_H)
    extrude(amount=-CUT_EXTRUDE23_DEPTH, mode=Mode.SUBTRACT)

    # Sketch19 → Cut-Extrude24 (cut)
    with BuildSketch(Plane(origin=(0, 3, 0), x_dir=(1, 0, 0), z_dir=(0, 1, 0))):
        Polygon((50, -32.5), (51.5, -25.5), (51.5, 7.5), (44, 7.5), (44, -25.5), align=None)
        Polygon((-51.5, -9), (-44, 7.5), (-51.5, 7.5), align=None)
    extrude(amount=-CUT_EXTRUDE24_DEPTH, mode=Mode.SUBTRACT)


solid = part.part
